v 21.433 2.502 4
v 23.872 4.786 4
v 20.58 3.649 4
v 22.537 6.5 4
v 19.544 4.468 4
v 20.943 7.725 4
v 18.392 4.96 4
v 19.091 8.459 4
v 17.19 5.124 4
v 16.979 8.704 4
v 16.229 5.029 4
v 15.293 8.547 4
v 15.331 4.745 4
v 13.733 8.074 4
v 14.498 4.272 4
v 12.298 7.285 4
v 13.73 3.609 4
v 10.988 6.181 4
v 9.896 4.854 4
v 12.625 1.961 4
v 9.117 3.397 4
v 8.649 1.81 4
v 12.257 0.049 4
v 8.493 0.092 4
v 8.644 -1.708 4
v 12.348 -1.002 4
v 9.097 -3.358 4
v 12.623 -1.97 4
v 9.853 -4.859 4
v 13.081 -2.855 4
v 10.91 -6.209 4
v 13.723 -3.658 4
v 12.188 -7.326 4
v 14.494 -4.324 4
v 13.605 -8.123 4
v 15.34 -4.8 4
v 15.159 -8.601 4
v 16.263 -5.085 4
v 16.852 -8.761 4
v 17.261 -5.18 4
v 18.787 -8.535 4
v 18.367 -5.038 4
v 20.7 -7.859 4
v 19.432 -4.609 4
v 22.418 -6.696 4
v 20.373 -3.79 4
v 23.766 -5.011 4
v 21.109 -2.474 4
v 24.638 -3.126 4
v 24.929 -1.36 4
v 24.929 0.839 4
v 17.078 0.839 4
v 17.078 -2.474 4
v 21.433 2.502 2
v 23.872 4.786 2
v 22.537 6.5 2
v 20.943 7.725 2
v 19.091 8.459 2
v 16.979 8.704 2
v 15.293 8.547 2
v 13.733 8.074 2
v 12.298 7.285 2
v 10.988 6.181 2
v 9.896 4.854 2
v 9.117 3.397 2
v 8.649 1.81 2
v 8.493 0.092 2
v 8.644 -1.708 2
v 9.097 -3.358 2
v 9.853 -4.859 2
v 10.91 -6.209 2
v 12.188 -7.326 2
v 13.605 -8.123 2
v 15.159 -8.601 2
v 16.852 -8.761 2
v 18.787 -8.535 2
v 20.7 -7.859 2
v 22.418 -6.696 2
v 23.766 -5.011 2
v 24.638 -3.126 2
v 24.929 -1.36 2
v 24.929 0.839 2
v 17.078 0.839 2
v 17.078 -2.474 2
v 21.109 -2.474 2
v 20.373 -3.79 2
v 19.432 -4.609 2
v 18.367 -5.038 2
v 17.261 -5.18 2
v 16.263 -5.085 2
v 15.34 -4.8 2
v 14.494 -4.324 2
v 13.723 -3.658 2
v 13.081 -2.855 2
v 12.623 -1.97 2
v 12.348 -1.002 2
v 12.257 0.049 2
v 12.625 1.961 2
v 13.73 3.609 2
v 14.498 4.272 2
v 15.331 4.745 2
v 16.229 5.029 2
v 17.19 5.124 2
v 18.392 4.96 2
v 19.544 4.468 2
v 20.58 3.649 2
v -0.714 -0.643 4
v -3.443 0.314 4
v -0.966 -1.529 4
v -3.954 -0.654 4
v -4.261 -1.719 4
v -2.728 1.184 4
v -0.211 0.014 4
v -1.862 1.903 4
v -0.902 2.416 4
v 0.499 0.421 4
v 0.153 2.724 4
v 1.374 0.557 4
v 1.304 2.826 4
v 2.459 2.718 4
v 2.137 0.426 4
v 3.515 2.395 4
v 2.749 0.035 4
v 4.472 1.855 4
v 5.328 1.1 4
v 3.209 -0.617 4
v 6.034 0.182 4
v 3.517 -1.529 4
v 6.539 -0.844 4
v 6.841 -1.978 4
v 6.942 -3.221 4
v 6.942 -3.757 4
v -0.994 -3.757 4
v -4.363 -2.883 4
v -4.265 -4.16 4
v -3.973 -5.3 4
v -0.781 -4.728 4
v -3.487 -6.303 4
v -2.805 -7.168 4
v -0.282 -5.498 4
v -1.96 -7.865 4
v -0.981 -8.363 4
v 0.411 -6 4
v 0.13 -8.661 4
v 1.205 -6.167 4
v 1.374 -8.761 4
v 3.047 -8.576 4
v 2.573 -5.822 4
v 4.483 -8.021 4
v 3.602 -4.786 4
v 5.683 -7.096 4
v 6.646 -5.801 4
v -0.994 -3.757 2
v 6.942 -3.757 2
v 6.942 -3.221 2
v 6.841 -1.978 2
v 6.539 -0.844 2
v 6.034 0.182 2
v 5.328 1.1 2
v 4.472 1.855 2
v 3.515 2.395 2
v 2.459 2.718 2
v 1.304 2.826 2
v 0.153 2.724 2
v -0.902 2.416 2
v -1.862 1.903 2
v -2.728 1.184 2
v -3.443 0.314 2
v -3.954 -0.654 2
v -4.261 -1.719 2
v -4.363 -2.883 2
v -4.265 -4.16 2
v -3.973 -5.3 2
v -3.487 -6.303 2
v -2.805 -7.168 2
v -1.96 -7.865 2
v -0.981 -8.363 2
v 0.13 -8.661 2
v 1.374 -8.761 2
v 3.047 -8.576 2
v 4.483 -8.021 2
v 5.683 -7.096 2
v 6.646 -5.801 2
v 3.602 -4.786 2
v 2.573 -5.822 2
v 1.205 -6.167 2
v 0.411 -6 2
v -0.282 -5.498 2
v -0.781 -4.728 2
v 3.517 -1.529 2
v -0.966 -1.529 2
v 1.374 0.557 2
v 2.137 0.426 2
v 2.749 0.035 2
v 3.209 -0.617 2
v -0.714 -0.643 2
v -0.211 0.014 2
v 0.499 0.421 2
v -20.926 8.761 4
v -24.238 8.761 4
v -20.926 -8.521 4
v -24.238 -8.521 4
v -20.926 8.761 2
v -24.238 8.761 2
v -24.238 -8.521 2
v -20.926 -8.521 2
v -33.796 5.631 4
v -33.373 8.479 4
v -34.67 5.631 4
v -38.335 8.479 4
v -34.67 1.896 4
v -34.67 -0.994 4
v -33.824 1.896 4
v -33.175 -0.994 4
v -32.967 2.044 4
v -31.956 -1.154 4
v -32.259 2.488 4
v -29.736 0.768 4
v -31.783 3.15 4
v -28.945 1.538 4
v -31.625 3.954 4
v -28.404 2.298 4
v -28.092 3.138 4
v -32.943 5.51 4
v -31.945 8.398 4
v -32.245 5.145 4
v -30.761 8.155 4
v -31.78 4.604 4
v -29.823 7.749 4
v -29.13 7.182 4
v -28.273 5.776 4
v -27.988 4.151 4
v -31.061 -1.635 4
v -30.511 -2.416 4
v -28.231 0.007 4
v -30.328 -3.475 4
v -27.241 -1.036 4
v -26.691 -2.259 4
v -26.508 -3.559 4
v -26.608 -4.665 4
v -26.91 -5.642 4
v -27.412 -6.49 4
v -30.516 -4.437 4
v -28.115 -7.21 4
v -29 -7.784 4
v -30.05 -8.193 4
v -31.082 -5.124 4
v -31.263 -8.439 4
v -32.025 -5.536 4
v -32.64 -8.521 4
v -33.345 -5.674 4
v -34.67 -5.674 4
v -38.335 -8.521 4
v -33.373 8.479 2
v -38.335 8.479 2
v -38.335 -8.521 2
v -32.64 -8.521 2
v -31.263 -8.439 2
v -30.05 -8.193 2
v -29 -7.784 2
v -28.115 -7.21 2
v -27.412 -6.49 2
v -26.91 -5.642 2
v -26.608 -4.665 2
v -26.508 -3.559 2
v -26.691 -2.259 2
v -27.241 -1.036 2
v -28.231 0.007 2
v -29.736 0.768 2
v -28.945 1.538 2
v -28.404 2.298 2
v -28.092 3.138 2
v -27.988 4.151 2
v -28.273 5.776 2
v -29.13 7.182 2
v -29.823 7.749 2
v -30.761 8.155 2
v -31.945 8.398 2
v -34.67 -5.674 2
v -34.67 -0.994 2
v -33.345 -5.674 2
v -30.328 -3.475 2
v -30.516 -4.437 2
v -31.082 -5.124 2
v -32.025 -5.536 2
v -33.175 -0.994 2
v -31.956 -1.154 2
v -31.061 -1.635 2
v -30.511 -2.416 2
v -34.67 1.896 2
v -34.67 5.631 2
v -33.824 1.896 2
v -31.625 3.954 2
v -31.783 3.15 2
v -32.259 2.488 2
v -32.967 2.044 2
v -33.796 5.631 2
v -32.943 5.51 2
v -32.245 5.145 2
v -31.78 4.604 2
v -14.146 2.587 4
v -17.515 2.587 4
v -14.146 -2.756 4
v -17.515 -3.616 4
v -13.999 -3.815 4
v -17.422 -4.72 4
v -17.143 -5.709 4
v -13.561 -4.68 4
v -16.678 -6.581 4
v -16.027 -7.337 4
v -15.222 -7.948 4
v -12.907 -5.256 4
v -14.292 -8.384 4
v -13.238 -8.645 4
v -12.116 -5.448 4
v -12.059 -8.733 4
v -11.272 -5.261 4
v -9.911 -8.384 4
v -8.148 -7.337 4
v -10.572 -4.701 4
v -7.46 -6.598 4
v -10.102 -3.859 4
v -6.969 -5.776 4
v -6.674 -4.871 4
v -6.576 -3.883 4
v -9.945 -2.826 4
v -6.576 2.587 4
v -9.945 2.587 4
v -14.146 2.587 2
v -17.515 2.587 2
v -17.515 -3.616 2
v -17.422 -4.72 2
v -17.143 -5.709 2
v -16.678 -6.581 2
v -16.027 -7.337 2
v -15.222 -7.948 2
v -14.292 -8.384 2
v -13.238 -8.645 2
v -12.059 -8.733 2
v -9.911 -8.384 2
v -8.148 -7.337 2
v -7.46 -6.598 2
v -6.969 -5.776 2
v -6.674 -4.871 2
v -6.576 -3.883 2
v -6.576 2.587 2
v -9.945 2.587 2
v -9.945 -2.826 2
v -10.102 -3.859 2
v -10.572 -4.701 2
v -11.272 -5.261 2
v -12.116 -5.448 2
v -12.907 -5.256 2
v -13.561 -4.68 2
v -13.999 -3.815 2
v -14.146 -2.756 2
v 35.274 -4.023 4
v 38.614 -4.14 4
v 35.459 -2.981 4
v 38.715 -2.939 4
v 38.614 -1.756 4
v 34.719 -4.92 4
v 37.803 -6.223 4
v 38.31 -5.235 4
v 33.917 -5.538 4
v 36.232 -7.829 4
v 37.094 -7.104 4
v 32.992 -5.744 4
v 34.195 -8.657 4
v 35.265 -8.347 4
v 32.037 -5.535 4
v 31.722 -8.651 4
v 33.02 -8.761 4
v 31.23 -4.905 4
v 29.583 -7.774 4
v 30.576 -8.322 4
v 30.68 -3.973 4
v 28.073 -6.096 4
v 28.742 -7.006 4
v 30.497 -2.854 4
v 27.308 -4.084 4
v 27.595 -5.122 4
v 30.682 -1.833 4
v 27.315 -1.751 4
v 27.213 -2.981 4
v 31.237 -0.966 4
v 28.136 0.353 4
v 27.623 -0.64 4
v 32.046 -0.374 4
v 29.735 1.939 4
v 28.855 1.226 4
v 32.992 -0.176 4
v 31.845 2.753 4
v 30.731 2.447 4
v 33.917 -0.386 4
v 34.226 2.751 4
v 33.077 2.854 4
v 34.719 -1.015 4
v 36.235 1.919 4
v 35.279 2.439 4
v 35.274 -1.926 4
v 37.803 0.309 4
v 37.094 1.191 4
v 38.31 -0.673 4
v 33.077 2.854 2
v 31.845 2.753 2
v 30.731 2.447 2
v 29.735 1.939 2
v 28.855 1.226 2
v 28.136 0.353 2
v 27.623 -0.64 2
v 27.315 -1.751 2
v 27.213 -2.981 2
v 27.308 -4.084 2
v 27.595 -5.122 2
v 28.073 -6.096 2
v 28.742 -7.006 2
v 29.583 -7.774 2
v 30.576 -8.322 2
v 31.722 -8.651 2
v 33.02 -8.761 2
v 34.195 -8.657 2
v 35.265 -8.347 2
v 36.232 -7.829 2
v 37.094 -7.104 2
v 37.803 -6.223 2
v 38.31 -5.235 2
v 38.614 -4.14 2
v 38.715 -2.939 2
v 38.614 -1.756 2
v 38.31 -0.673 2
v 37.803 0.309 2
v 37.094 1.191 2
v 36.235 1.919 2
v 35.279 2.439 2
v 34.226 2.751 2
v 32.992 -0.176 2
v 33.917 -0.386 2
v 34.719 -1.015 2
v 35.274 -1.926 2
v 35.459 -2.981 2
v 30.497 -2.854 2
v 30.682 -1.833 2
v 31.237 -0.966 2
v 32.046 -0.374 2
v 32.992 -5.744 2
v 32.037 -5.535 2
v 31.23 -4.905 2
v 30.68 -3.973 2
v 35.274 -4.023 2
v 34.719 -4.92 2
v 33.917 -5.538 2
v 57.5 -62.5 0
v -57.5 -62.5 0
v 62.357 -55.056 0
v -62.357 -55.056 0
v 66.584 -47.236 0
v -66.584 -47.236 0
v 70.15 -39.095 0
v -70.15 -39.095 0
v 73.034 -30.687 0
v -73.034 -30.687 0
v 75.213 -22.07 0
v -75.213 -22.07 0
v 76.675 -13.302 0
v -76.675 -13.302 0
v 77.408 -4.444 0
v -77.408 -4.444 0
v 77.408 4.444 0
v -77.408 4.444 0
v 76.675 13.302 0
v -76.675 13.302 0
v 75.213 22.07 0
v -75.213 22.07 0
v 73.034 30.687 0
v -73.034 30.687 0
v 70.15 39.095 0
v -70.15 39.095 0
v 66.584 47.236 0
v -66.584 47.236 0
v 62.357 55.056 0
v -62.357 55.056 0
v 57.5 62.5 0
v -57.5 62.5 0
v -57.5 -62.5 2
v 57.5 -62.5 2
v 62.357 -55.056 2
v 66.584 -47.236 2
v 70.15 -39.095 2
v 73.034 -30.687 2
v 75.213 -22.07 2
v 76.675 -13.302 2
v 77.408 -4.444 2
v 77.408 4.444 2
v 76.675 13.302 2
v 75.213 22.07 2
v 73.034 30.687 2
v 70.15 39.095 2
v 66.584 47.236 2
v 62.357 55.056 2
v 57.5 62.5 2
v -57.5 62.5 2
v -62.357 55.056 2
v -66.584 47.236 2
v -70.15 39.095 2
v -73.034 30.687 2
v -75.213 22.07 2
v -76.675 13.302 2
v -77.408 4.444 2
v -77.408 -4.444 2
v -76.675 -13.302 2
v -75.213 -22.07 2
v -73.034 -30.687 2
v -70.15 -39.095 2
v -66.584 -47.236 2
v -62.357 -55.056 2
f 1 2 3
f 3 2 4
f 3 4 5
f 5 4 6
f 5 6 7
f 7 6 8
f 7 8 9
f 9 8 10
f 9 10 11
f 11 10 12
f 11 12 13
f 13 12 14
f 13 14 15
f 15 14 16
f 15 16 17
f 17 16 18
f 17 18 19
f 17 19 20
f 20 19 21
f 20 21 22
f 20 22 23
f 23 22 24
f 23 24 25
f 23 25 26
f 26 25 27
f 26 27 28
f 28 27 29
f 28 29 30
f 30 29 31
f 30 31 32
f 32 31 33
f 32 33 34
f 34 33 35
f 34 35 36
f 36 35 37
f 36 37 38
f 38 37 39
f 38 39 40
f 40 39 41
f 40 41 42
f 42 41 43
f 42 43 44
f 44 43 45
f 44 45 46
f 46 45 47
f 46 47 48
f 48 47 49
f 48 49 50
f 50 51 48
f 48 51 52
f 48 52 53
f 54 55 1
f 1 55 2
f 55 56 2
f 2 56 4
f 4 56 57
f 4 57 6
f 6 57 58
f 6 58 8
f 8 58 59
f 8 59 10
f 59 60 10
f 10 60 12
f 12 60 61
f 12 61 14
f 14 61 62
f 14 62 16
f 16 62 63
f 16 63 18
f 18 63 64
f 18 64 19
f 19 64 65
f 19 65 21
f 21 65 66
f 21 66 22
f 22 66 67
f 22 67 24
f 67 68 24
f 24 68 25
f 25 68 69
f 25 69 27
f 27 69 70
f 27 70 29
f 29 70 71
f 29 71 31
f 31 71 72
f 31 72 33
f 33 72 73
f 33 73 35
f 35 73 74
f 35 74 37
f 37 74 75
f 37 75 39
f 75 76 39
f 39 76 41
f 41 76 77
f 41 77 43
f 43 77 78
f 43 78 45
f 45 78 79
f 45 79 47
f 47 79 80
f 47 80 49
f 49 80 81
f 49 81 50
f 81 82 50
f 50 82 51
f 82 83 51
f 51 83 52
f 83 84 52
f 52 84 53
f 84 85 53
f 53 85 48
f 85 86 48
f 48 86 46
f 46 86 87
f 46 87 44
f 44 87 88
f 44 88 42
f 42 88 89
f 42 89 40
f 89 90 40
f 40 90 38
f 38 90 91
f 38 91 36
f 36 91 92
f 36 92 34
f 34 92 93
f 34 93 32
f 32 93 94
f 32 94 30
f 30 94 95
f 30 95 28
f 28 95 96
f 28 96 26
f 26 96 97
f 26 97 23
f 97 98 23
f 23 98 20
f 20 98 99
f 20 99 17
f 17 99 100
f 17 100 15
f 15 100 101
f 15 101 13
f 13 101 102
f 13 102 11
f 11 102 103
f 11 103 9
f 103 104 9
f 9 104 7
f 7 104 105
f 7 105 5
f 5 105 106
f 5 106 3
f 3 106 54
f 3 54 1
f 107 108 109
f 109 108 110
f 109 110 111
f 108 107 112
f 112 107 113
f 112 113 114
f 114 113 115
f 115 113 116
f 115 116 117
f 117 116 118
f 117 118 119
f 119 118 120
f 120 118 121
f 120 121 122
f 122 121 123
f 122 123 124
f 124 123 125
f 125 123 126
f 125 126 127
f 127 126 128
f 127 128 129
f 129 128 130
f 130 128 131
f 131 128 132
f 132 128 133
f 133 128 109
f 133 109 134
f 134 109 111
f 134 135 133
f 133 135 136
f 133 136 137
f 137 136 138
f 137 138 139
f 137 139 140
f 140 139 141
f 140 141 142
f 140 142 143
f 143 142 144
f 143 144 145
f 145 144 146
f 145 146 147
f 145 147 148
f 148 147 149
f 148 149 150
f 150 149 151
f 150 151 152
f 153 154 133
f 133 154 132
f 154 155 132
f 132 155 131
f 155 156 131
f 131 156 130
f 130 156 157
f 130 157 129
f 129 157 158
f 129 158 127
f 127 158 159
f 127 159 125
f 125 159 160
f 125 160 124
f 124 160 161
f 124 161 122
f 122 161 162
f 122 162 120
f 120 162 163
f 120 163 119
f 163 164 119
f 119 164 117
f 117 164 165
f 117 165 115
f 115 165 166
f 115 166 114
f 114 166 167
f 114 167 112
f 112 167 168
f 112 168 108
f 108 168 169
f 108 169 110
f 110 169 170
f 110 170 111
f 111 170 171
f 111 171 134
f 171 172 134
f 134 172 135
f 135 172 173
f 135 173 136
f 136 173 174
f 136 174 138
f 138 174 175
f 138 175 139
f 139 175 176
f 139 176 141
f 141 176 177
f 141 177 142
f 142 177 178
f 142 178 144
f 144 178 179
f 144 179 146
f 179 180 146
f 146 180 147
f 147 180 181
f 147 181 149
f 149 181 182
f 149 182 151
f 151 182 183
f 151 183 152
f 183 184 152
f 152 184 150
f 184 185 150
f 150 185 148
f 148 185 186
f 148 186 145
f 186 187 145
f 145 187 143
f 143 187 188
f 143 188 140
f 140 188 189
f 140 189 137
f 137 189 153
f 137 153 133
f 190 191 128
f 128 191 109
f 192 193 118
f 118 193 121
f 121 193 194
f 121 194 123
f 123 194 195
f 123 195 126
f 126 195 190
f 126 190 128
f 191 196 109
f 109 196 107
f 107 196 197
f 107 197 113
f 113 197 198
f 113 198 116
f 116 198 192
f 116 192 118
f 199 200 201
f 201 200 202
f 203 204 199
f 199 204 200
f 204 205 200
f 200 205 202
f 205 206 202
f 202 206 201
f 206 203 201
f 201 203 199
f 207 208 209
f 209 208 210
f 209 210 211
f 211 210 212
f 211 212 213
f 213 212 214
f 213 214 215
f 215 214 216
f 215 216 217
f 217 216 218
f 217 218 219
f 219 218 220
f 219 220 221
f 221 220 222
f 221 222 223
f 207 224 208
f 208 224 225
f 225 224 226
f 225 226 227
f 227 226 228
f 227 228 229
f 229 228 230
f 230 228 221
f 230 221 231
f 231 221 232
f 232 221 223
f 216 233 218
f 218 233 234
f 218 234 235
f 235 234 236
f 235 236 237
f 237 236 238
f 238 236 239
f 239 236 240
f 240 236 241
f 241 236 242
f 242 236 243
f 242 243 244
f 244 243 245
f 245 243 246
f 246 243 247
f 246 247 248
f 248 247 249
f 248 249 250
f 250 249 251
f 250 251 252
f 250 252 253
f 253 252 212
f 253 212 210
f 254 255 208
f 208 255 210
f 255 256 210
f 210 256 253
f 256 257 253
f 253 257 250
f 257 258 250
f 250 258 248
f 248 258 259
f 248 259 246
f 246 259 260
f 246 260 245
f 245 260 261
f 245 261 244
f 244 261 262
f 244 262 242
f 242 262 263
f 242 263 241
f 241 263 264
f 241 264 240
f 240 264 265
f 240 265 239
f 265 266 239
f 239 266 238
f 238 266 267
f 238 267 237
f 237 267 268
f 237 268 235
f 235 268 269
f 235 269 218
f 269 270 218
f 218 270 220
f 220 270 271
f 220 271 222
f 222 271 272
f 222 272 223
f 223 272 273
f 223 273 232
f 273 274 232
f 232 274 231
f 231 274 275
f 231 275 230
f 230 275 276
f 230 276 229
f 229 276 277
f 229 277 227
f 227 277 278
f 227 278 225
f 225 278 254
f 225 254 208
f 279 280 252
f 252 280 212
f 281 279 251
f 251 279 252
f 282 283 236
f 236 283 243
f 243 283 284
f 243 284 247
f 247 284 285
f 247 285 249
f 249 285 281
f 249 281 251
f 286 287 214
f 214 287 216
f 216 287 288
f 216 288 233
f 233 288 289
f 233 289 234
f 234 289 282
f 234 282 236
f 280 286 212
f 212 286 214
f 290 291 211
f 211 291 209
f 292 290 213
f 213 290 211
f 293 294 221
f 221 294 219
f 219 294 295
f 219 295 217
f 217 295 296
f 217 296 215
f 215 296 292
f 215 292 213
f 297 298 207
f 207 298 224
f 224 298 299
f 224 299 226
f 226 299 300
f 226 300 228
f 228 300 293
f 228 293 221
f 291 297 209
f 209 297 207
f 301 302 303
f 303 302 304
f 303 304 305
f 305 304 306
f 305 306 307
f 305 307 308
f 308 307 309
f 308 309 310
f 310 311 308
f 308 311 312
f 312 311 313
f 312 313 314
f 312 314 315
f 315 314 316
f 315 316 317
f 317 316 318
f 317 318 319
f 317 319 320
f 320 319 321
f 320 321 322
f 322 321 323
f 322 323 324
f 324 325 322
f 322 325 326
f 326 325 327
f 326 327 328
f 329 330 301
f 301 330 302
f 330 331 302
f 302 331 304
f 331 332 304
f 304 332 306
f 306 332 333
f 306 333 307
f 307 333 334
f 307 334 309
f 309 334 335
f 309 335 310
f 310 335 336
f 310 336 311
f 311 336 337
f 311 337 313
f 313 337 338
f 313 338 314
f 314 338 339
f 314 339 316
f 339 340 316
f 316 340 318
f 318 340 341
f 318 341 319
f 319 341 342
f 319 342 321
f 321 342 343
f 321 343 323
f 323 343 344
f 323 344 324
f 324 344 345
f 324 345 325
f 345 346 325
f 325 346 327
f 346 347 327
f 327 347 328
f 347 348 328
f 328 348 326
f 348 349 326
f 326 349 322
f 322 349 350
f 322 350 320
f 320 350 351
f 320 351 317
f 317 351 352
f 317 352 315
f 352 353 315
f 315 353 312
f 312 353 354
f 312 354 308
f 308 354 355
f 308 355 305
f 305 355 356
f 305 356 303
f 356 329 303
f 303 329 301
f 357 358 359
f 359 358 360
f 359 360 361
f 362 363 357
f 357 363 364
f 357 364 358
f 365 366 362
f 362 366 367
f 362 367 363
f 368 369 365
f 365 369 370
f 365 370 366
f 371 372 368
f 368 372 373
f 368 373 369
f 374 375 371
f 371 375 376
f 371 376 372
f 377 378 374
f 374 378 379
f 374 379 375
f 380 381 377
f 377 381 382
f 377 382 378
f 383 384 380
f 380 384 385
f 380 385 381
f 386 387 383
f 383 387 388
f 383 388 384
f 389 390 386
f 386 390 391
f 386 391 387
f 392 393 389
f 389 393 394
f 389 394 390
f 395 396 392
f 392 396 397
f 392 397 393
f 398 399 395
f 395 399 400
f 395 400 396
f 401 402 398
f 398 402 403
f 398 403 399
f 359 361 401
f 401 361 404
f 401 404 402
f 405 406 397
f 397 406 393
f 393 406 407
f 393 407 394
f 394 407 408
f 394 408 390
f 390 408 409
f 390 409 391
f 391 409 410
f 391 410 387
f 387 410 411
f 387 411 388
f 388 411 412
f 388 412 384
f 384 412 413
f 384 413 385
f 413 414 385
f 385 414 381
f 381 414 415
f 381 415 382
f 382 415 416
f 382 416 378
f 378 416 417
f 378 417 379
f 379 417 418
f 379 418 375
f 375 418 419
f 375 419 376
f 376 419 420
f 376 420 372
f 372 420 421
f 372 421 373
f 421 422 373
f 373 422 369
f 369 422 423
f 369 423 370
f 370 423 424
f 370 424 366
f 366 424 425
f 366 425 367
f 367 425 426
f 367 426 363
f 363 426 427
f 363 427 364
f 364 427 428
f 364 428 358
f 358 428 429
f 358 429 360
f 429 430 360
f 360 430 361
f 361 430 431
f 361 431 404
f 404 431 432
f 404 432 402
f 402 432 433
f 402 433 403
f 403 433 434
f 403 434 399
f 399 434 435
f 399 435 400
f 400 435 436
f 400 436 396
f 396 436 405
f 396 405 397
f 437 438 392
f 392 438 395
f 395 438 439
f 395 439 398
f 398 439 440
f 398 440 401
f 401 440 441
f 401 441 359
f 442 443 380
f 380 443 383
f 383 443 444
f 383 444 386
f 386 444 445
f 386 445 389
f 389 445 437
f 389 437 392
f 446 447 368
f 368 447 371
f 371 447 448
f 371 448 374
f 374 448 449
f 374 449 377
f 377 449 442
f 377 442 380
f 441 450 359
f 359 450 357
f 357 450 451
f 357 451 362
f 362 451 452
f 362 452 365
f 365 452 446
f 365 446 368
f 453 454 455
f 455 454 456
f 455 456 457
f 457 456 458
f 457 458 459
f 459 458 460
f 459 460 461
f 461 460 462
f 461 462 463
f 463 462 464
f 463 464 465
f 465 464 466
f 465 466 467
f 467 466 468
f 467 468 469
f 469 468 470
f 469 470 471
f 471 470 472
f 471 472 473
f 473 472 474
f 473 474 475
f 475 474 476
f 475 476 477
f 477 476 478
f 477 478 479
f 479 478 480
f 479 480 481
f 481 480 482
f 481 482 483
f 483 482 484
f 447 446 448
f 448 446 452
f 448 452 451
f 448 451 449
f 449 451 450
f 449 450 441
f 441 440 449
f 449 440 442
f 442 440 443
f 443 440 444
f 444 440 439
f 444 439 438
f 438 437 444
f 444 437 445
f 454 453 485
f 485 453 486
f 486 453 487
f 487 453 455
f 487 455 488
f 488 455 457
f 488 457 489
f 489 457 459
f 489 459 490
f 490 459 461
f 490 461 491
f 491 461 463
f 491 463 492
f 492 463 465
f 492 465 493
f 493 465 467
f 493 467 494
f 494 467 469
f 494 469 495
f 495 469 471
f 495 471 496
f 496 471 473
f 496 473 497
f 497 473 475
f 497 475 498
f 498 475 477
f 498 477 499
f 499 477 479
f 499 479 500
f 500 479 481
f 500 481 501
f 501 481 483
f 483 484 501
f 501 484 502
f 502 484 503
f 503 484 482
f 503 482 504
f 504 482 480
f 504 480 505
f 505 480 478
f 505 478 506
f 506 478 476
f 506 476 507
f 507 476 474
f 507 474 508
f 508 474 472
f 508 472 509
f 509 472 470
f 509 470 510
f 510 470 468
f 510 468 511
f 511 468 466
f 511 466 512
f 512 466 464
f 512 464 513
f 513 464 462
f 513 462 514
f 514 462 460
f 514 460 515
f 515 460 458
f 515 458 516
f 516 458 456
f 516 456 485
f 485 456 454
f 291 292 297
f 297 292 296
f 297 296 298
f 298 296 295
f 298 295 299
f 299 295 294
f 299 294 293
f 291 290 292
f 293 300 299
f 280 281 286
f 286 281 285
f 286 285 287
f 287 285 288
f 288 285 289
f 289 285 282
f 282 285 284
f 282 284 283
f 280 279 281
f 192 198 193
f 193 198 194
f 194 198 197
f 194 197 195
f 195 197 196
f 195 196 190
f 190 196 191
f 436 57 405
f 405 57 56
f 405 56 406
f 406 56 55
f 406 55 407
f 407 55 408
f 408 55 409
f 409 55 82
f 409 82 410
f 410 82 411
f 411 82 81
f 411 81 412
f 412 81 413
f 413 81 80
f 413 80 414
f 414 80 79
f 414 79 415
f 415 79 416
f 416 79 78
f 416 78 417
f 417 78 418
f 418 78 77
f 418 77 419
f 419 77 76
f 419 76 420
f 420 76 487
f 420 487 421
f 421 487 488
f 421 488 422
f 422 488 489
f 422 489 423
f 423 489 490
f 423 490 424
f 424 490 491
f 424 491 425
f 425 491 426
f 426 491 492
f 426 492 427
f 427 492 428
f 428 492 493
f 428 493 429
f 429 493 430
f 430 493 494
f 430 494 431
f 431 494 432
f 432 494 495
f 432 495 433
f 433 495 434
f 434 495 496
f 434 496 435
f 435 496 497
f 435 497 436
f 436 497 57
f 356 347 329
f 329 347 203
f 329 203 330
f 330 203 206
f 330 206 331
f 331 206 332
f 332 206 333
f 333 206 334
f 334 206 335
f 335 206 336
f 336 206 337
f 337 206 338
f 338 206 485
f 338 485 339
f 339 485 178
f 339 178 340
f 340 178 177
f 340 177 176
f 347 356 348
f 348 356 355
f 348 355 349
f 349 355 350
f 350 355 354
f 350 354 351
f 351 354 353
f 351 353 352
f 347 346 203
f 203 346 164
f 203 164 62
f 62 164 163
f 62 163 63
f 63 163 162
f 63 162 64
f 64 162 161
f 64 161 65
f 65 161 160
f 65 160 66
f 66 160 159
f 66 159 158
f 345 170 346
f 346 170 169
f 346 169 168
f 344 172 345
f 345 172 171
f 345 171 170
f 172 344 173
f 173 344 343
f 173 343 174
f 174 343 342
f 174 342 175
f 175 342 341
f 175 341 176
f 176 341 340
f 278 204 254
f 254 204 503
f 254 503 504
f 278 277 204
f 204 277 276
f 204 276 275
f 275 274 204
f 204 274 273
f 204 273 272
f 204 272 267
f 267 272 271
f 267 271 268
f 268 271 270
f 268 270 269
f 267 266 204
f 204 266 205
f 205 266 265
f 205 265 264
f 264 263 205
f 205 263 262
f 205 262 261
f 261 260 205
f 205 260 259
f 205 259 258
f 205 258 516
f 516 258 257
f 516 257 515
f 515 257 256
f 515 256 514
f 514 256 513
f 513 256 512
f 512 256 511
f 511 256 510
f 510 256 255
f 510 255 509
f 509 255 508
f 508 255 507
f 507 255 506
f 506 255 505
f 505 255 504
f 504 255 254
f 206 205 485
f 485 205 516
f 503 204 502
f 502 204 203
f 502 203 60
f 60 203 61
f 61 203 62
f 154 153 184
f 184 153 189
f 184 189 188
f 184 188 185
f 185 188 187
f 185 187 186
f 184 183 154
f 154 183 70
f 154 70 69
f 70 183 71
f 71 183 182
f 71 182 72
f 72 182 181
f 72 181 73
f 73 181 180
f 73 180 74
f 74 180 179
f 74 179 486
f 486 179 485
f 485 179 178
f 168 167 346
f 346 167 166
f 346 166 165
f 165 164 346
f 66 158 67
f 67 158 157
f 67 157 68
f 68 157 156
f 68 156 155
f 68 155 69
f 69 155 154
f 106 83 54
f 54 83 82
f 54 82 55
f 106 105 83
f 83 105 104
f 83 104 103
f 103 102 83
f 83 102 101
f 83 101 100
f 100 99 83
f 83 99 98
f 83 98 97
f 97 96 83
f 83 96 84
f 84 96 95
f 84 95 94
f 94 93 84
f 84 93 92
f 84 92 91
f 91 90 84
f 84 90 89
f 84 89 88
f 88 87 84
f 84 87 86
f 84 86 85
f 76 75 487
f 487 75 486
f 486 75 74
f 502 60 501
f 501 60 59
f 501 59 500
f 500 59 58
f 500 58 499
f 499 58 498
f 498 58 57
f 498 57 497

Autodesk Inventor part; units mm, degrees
ref_plane "YZ Plane" through (0, 0, 0) normal (1, 0, 0) x (0, 1, 0)
ref_plane "XZ Plane" through (0, 0, 0) normal (0, 1, 0) x (-1, 0, 0)
ref_plane "XY Plane" through (0, 0, 0) normal (0, 0, 1) x (1, 0, 0)
sketch "Sketch1" plane through (0, 0, 0) normal (0, 0, 1) x (1, 0, 0)
  line L0 (57.5, 62.5) -> (-57.5, 62.5)
  line L1 (-57.5, 62.5) -> (-57.5, -62.5)
  line L2 (-57.5, -62.5) -> (57.5, -62.5)
  line L3 (57.5, -62.5) -> (57.5, 62.5)
  line L4 (57.5, 62.5) -> (-57.5, -62.5) construction
  line L5 (-57.5, 62.5) -> (57.5, -62.5) construction
  line L6 (57.5, 0) -> (77.5, 0)
  line L7 (-57.5, 0) -> (-77.5, 0)
  arc A0 (-57.5, 62.5) -> (-57.5, -62.5) centre (30.1562, 0) ccw
  arc A1 (57.5, -62.5) -> (57.5, 62.5) centre (-30.1562, 0) ccw
  point P0 (0, 0)
  dimension "d0" = 115
  dimension "d1" = 125
  dimension "d2" = 20
  dimension "d3" = 20
extrude "Extrusion1" add sketch "Sketch1" along normal blind 2
sketch "Sketch2" plane through (0, 0, 2) normal (0, 0, 1) x (1, 0, 0)
  line L0 (-40.012, 8.7608) -> (40.012, 8.7608) construction
  line L1 (40.012, 8.7608) -> (40.012, -8.7608) construction
  line L2 (40.012, -8.7608) -> (-40.012, -8.7608) construction
  line L3 (-40.012, -8.7608) -> (-40.012, 8.7608) construction
  line L4 (-38.3346, 8.4789) -> (-33.3727, 8.4789)
  spline S0 degree 2 poles (-33.3727, 8.4789) (-30.2716, 8.4789) (-27.988, 5.8852) (-27.988, 4.1513) knots 0 0 0 1 2 2 2
  spline S1 degree 2 poles (-27.988, 4.1513) (-27.988, 3.0518) (-28.8197, 1.5435) (-29.7359, 0.7682) knots 0 0 0 1 2 2 2
  spline S2 degree 2 poles (-29.7359, 0.7682) (-27.9739, 0.148) (-26.5079, -2.2201) (-26.5079, -3.5593) knots 0 0 0 1 2 2 2
  spline S3 degree 2 poles (-26.5079, -3.5593) (-26.5079, -5.8993) (-29.7218, -8.5211) (-32.6397, -8.5211) knots 0 0 0 1 2 2 2
  line L5 (-32.6397, -8.5211) -> (-38.3346, -8.5211)
  line L6 (-38.3346, -8.5211) -> (-38.3346, 8.4789)
  line L7 (-34.6696, -0.9938) -> (-34.6696, -5.6737)
  line L8 (-34.6696, -5.6737) -> (-33.3445, -5.6737)
  spline S4 degree 2 poles (-33.3445, -5.6737) (-30.3279, -5.6737) (-30.3279, -3.4747) knots 0 0 0 1 1 1
  spline S5 degree 2 poles (-30.3279, -3.4747) (-30.3279, -2.2765) (-31.7939, -0.9938) (-33.1754, -0.9938) knots 0 0 0 1 2 2 2
  line L9 (-33.1754, -0.9938) -> (-34.6696, -0.9938)
  line L10 (-34.6696, 5.6314) -> (-34.6696, 1.8959)
  line L11 (-34.6696, 1.8959) -> (-33.8238, 1.8959)
  spline S6 degree 2 poles (-33.8238, 1.8959) (-32.8935, 1.8959) (-31.6248, 3.08) (-31.6248, 3.954) knots 0 0 0 1 2 2 2
  spline S7 degree 2 poles (-31.6248, 3.954) (-31.6248, 4.6588) (-32.8653, 5.6314) (-33.7956, 5.6314) knots 0 0 0 1 2 2 2
  line L12 (-33.7956, 5.6314) -> (-34.6696, 5.6314)
  line L13 (-24.2384, 8.7608) -> (-20.9258, 8.7608)
  line L14 (-20.9258, 8.7608) -> (-20.9258, -8.5211)
  line L15 (-20.9258, -8.5211) -> (-24.2384, -8.5211)
  line L16 (-24.2384, -8.5211) -> (-24.2384, 8.7608)
  line L17 (-17.5145, 2.5867) -> (-14.1455, 2.5867)
  line L18 (-14.1455, 2.5867) -> (-14.1455, -2.7558)
  spline S8 degree 2 poles (-14.1455, -2.7558) (-14.1455, -3.9117) (-12.9755, -5.4482) (-12.1157, -5.4482) knots 0 0 0 1 2 2 2
  spline S9 degree 2 poles (-12.1157, -5.4482) (-11.1994, -5.4482) (-9.9449, -3.954) (-9.9449, -2.8263) knots 0 0 0 1 2 2 2
  line L19 (-9.9449, -2.8263) -> (-9.9449, 2.5867)
  line L20 (-9.9449, 2.5867) -> (-6.5759, 2.5867)
  line L21 (-6.5759, 2.5867) -> (-6.5759, -3.8835)
  spline S10 degree 2 poles (-6.5759, -3.8835) (-6.5759, -5.9415) (-9.7193, -8.7326) (-12.0593, -8.7326) knots 0 0 0 1 2 2 2
  spline S11 degree 2 poles (-12.0593, -8.7326) (-14.5402, -8.7326) (-17.5145, -5.9415) (-17.5145, -3.6157) knots 0 0 0 1 2 2 2
  line L22 (-17.5145, -3.6157) -> (-17.5145, 2.5867)
  line L23 (6.9424, -3.7566) -> (-0.9938, -3.7566)
  spline S12 degree 2 poles (-0.9938, -3.7566) (-0.9233, -4.8279) (0.3595, -6.1671) (1.2052, -6.1671) knots 0 0 0 1 2 2 2
  spline S13 degree 2 poles (1.2052, -6.1671) (2.7417, -6.1671) (3.6016, -4.7857) knots 0 0 0 1 1 1
  line L24 (3.6016, -4.7857) -> (6.6464, -5.8006)
  spline S14 degree 2 poles (6.6464, -5.8006) (4.9548, -8.7608) (1.3744, -8.7608) knots 0 0 0 1 1 1
  spline S15 degree 2 poles (1.3744, -8.7608) (-1.2475, -8.7608) (-4.3628, -5.575) (-4.3628, -2.8827) knots 0 0 0 1 2 2 2
  spline S16 degree 2 poles (-4.3628, -2.8827) (-4.3628, -0.4581) (-1.0925, 2.8263) (1.3039, 2.8263) knots 0 0 0 1 2 2 2
  spline S17 degree 2 poles (1.3039, 2.8263) (3.7143, 2.8263) (6.9424, -0.6273) (6.9424, -3.221) knots 0 0 0 1 2 2 2
  line L25 (6.9424, -3.221) -> (6.9424, -3.7566)
  line L26 (-0.9656, -1.5294) -> (3.517, -1.5294)
  spline S18 degree 2 poles (3.517, -1.5294) (3.0518, 0.5568) (1.3744, 0.5568) knots 0 0 0 1 1 1
  spline S19 degree 2 poles (1.3744, 0.5568) (0.4158, 0.5568) (-0.8387, -0.5286) (-0.9656, -1.5294) knots 0 0 0 1 2 2 2
  line L27 (23.8719, 4.7857) -> (21.4332, 2.5021)
  spline S20 degree 2 poles (21.4332, 2.5021) (20.6721, 3.813) (18.4167, 5.124) (17.1903, 5.124) knots 0 0 0 1 2 2 2
  spline S21 degree 2 poles (17.1903, 5.124) (15.2027, 5.124) (12.2566, 2.0933) (12.2566, 0.0493) knots 0 0 0 1 2 2 2
  spline S22 degree 2 poles (12.2566, 0.0493) (12.2566, -2.1356) (15.1886, -5.1803) (17.2608, -5.1803) knots 0 0 0 1 2 2 2
  spline S23 degree 2 poles (17.2608, -5.1803) (18.3885, -5.1803) (20.4747, -4.0386) (21.109, -2.4739) knots 0 0 0 1 2 2 2
  line L28 (21.109, -2.4739) -> (17.0775, -2.4739)
  line L29 (17.0775, -2.4739) -> (17.0775, 0.8387)
  line L30 (17.0775, 0.8387) -> (24.9291, 0.8387)
  line L31 (24.9291, 0.8387) -> (24.9291, -1.3603)
  spline S24 degree 2 poles (24.9291, -1.3603) (24.9291, -3.0659) (22.6032, -6.9565) (18.7973, -8.7608) (16.852, -8.7608) knots 0 0 0 1 2 3 3 3
  spline S25 degree 2 poles (16.852, -8.7608) (13.3279, -8.7608) (8.493, -3.658) (8.493, 0.0916) knots 0 0 0 1 2 2 2
  spline S26 degree 2 poles (8.493, 0.0916) (8.493, 3.658) (13.483, 8.7044) (16.9789, 8.7044) knots 0 0 0 1 2 2 2
  spline S27 degree 2 poles (16.9789, 8.7044) (21.4614, 8.7044) (23.8719, 4.7857) knots 0 0 0 1 1 1
  spline S28 degree 2 poles (27.2127, -2.9813) (27.2127, -0.4017) (30.4971, 2.8545) (33.0767, 2.8545) knots 0 0 0 1 2 2 2
  spline S29 degree 2 poles (33.0767, 2.8545) (35.4731, 2.8545) (38.7152, -0.4722) (38.7152, -2.9391) knots 0 0 0 1 2 2 2
  spline S30 degree 2 poles (38.7152, -2.9391) (38.7152, -5.4482) (35.4731, -8.7608) (33.0203, -8.7608) knots 0 0 0 1 2 2 2
  spline S31 degree 2 poles (33.0203, -8.7608) (30.2716, -8.7608) (27.2127, -5.2508) (27.2127, -2.9813) knots 0 0 0 1 2 2 2
  spline S32 degree 2 poles (35.459, -2.9813) (35.459, -1.8536) (33.9789, -0.1762) (32.9921, -0.1762) knots 0 0 0 1 2 2 2
  spline S33 degree 2 poles (32.9921, -0.1762) (31.9772, -0.1762) (30.4971, -1.755) (30.4971, -2.8545) knots 0 0 0 1 2 2 2
  spline S34 degree 2 poles (30.4971, -2.8545) (30.4971, -4.0667) (31.9631, -5.7442) (32.9921, -5.7442) knots 0 0 0 1 2 2 2
  spline S35 degree 2 poles (32.9921, -5.7442) (33.9789, -5.7442) (35.459, -4.0949) (35.459, -2.9813) knots 0 0 0 1 2 2 2
  point P0 (0, 0)
extrude "Extrusion2" add sketch "Sketch2" along normal blind 2
sketch "Sketch3" plane through (-38.3346, -8.5211, 2) normal (-1, 0, 0) x (0, 0, 1)
  point P0 (-2, 8.5211)
properties part number "BlueGo"
